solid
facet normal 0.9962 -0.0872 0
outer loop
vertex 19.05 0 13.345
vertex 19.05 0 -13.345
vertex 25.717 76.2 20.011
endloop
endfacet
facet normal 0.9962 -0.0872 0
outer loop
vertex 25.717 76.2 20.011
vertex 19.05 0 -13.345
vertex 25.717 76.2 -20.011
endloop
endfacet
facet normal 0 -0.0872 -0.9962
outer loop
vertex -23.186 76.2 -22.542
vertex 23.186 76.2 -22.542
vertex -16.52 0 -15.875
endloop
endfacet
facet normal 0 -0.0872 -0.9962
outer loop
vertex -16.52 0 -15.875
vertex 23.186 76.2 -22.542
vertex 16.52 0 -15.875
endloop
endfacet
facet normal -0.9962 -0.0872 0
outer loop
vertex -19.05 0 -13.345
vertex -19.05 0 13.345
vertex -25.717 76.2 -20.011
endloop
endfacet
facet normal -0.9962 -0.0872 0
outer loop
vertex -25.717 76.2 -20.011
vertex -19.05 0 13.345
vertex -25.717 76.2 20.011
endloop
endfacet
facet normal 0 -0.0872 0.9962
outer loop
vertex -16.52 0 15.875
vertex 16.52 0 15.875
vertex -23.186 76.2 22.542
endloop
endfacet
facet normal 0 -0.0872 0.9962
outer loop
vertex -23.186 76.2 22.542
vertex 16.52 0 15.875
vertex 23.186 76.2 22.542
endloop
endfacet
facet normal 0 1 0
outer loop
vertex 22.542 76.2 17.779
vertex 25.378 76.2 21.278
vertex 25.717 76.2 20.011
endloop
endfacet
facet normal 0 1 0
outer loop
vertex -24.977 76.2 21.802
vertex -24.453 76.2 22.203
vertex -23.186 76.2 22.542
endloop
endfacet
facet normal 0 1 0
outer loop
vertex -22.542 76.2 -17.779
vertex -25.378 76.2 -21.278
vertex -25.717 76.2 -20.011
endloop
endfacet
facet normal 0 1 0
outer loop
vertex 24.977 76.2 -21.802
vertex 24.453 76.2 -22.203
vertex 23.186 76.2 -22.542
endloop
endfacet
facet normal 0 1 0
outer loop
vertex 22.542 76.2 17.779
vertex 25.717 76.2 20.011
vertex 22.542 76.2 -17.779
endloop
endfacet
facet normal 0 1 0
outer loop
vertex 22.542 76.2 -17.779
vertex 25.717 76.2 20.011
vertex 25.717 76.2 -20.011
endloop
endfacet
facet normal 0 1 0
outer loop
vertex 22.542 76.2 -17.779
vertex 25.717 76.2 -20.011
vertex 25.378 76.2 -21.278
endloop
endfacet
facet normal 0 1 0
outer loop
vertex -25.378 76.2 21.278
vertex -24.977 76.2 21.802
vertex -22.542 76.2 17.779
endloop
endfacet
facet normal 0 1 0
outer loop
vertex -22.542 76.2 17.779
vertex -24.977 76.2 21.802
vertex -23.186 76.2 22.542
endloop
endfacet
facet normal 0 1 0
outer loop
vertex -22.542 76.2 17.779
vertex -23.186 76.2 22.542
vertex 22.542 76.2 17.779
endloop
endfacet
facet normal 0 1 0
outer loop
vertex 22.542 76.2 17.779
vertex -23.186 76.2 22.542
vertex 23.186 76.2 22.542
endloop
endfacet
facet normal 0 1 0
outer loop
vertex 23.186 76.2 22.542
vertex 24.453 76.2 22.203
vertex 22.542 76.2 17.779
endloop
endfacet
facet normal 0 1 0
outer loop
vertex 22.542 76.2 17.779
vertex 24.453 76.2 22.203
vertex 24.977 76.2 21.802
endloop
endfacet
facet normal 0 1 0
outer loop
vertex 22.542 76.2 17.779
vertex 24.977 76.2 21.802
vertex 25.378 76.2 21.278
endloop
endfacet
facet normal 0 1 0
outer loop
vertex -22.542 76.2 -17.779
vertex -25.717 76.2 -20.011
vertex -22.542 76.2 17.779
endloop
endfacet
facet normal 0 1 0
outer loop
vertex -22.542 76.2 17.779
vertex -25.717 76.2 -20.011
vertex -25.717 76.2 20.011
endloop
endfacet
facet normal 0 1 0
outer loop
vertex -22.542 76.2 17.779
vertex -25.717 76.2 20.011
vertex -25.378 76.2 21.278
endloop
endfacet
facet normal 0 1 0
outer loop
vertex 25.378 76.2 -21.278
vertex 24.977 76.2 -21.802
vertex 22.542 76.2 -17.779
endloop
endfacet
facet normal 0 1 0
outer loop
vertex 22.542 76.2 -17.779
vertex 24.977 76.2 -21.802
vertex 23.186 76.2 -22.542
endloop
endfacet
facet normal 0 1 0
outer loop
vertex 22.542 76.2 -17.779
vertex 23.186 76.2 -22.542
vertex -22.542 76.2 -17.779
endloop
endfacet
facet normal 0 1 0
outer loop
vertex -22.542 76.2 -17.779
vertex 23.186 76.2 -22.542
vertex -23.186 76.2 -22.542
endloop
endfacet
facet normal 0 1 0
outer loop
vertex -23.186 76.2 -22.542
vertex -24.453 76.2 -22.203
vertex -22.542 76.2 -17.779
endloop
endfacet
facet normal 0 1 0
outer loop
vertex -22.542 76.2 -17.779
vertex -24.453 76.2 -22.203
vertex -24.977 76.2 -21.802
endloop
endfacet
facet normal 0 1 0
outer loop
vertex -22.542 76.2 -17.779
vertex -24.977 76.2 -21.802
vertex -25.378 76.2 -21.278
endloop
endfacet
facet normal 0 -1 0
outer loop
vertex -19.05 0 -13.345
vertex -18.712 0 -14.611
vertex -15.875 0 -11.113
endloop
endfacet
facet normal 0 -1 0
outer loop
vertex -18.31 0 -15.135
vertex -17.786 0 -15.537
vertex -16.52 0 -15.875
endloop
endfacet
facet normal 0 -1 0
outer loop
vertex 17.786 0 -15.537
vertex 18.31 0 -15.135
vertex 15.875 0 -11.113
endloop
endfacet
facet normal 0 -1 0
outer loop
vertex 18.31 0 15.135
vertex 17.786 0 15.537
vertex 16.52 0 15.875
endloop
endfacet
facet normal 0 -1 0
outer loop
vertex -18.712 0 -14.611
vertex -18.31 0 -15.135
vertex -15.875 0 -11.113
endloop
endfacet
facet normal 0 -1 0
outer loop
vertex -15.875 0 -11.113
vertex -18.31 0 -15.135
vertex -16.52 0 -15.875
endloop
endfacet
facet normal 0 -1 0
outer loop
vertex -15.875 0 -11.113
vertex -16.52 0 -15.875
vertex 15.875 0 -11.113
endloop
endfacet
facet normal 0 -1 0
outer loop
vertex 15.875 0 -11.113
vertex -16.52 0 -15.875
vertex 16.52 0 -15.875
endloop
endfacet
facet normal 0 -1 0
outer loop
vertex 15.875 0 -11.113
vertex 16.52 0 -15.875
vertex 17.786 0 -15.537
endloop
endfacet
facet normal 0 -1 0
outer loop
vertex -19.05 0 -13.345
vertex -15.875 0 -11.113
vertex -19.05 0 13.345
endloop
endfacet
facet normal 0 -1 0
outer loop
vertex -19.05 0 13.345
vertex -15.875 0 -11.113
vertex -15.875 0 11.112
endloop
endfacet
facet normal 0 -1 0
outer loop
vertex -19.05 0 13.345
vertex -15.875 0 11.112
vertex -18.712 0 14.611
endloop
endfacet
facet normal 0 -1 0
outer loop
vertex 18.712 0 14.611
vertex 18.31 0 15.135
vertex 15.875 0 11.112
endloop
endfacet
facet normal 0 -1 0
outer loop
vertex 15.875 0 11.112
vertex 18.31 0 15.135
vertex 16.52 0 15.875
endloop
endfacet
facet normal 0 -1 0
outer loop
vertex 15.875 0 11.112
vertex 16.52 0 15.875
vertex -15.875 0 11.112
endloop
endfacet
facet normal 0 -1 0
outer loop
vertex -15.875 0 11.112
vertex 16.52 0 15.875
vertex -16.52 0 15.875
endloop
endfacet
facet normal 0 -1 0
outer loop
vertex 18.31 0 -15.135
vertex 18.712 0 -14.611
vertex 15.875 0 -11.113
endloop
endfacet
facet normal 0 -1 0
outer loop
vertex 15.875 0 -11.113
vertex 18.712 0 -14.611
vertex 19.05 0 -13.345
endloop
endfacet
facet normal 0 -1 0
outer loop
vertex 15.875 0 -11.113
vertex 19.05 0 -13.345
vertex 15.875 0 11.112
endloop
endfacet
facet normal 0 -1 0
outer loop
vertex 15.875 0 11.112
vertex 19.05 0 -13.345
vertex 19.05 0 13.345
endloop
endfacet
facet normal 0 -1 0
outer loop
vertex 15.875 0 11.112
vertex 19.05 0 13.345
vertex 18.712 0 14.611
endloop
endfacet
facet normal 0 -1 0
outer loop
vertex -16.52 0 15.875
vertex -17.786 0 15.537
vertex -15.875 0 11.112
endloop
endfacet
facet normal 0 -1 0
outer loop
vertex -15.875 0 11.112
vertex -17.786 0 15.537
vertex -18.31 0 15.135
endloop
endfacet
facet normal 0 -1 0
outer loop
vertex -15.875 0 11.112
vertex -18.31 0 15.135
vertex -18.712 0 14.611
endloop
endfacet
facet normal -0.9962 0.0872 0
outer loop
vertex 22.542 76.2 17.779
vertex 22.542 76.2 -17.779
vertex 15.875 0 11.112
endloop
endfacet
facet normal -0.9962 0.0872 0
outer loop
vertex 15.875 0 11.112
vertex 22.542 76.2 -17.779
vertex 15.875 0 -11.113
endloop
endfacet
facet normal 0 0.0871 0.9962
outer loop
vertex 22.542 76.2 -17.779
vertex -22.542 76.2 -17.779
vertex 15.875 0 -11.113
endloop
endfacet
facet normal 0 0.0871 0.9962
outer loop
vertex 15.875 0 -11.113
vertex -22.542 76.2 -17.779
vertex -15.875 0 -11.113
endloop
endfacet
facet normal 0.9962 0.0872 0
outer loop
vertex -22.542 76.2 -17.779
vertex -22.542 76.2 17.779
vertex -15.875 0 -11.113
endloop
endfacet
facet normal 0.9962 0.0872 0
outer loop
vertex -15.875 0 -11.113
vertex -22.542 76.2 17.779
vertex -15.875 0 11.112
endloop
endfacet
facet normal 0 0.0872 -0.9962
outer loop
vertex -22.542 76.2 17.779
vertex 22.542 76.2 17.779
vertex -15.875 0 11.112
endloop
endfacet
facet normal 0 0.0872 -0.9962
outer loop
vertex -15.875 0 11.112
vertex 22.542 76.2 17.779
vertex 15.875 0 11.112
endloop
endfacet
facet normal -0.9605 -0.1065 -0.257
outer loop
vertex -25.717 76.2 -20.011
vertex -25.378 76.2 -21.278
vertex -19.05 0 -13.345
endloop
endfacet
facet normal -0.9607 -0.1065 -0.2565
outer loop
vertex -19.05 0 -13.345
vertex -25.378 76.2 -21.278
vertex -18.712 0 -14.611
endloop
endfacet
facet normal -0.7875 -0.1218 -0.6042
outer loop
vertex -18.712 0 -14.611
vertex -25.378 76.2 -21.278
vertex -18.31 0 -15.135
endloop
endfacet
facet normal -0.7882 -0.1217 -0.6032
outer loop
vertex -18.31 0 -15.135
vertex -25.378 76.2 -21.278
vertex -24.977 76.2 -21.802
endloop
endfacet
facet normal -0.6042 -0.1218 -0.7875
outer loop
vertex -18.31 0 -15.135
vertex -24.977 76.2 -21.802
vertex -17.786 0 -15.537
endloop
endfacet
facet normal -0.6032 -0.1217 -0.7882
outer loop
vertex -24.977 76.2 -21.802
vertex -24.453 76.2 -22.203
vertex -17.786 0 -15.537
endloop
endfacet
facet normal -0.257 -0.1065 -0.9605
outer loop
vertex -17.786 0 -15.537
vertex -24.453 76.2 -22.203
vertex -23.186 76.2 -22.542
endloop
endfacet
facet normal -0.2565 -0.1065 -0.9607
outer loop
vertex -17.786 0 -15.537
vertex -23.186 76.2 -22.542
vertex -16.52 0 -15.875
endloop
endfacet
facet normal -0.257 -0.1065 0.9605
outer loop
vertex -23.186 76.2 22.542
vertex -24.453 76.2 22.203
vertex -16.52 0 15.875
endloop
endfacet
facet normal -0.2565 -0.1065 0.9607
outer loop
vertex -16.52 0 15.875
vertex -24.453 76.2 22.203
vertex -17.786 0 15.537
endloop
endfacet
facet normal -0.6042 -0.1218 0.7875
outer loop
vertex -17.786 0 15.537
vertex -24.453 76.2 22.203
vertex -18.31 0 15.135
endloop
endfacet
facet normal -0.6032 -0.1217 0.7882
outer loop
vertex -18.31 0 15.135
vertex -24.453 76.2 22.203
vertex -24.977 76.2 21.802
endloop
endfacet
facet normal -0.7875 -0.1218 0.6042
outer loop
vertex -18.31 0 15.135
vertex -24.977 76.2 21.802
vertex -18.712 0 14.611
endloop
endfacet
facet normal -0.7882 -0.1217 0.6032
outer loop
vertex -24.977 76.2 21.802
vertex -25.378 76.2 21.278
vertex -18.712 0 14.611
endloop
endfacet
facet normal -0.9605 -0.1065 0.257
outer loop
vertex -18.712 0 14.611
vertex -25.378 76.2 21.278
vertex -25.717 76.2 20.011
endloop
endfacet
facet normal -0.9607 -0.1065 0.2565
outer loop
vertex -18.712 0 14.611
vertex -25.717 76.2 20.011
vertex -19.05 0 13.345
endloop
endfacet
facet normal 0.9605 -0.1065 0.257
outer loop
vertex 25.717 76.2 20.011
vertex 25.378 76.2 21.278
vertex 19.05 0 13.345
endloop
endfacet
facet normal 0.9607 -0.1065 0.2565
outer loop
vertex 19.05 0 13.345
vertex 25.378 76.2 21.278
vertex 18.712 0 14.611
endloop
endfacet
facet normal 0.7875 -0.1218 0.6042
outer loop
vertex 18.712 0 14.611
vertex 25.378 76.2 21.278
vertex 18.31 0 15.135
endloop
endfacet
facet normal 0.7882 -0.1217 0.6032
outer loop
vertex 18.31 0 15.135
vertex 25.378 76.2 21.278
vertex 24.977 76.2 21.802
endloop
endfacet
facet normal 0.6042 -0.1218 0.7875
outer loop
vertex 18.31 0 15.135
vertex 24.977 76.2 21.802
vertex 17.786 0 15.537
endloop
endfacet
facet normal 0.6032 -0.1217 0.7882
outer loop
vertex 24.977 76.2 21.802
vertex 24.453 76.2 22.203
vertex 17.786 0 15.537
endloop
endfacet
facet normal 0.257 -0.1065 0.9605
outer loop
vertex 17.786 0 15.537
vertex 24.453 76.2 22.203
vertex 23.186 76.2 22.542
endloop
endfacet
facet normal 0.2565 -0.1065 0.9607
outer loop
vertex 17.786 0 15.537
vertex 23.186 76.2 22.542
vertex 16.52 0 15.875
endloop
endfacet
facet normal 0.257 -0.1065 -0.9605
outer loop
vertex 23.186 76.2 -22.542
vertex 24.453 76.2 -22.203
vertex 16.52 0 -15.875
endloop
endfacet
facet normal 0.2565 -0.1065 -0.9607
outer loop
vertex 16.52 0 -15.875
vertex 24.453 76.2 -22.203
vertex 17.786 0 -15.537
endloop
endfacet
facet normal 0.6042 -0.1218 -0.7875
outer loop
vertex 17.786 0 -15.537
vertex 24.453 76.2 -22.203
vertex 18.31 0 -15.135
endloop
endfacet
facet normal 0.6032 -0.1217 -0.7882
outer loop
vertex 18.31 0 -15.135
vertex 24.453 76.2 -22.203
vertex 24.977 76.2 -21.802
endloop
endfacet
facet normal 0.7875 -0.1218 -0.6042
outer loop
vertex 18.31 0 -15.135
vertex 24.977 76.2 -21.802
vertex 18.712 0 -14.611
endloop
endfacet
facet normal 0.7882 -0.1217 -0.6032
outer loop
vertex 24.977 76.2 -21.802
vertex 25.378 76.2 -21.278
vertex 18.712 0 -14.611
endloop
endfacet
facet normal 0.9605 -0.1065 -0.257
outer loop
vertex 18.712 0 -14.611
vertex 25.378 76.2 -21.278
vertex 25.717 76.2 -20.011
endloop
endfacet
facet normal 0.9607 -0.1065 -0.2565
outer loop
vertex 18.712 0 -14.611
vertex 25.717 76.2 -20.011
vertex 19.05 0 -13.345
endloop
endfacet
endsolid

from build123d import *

# Parameters (mm, degrees)
SKETCH1_W           = 38.1
SKETCH1_H           = 31.75
BOSS_EXTRUDE1_DEPTH = 76.2
BOSS_EXTRUDE1_DRAFT = -5
SKETCH3_W           = 31.75
SKETCH3_H           = 22.225
CUT_EXTRUDE1_DEPTH  = 84.5219177
CUT_EXTRUDE1_DRAFT  = 5
FILLET1_R           = 2.54


with BuildPart() as part:
    # Sketch1 → Boss-Extrude1 (with draft: the straight prism first)
    with BuildSketch(Plane(origin=(0, 0, 0), x_dir=(1, 0, 0), z_dir=(0, 1, 0))):
        Rectangle(SKETCH1_W, SKETCH1_H)
    extrude(amount=BOSS_EXTRUDE1_DEPTH)
    # Boss-Extrude1: the draft: its side faces are tilted about the plane it starts from
    boss_extrude1_sides = [part.faces().sort_by_distance(p)[0] for p in [
        (0, 38.1, 15.875),
        (19.05, 38.1, 0),
        (0, 38.1, -15.875),
        (-19.05, 38.1, 0),
    ]]
    draft(boss_extrude1_sides, Plane(origin=(0, 0, 0), x_dir=(1, 0, 0), z_dir=(0, 1, 0)), BOSS_EXTRUDE1_DRAFT)


with BuildPart() as cut_extrude1_tool:
    # Sketch3 → Cut-Extrude1 (with draft: the straight prism first)
    with BuildSketch(Plane.XZ):
        Rectangle(SKETCH3_W, SKETCH3_H)
    extrude(amount=-CUT_EXTRUDE1_DEPTH)
    # Cut-Extrude1: the draft: its side faces are tilted about the plane it starts from
    cut_extrude1_sides = [cut_extrude1_tool.faces().sort_by_distance(p)[0] for p in [
        (0, 42.26095885, -11.1125),
        (15.875, 42.26095885, 0),
        (0, 42.26095885, 11.1125),
        (-15.875, 42.26095885, 0),
    ]]
    draft(cut_extrude1_sides, Plane.XZ, CUT_EXTRUDE1_DRAFT)


with BuildPart() as part_1:
    add(part.part)

    # Cut-Extrude1: cut by cut_extrude1_tool
    add(cut_extrude1_tool.part, mode=Mode.SUBTRACT)

    # Fillet1
    fillet1_edges = [part_1.edges().sort_by_distance(p)[0] for p in [
        (22.38331808, 38.1, 19.20831808),
        (-22.38331808, 38.1, 19.20831808),
        (-22.38331808, 38.1, -19.20831808),
        (22.38331808, 38.1, -19.20831808),
    ]]
    fillet(fillet1_edges, radius=FILLET1_R)


solid = part_1.part
